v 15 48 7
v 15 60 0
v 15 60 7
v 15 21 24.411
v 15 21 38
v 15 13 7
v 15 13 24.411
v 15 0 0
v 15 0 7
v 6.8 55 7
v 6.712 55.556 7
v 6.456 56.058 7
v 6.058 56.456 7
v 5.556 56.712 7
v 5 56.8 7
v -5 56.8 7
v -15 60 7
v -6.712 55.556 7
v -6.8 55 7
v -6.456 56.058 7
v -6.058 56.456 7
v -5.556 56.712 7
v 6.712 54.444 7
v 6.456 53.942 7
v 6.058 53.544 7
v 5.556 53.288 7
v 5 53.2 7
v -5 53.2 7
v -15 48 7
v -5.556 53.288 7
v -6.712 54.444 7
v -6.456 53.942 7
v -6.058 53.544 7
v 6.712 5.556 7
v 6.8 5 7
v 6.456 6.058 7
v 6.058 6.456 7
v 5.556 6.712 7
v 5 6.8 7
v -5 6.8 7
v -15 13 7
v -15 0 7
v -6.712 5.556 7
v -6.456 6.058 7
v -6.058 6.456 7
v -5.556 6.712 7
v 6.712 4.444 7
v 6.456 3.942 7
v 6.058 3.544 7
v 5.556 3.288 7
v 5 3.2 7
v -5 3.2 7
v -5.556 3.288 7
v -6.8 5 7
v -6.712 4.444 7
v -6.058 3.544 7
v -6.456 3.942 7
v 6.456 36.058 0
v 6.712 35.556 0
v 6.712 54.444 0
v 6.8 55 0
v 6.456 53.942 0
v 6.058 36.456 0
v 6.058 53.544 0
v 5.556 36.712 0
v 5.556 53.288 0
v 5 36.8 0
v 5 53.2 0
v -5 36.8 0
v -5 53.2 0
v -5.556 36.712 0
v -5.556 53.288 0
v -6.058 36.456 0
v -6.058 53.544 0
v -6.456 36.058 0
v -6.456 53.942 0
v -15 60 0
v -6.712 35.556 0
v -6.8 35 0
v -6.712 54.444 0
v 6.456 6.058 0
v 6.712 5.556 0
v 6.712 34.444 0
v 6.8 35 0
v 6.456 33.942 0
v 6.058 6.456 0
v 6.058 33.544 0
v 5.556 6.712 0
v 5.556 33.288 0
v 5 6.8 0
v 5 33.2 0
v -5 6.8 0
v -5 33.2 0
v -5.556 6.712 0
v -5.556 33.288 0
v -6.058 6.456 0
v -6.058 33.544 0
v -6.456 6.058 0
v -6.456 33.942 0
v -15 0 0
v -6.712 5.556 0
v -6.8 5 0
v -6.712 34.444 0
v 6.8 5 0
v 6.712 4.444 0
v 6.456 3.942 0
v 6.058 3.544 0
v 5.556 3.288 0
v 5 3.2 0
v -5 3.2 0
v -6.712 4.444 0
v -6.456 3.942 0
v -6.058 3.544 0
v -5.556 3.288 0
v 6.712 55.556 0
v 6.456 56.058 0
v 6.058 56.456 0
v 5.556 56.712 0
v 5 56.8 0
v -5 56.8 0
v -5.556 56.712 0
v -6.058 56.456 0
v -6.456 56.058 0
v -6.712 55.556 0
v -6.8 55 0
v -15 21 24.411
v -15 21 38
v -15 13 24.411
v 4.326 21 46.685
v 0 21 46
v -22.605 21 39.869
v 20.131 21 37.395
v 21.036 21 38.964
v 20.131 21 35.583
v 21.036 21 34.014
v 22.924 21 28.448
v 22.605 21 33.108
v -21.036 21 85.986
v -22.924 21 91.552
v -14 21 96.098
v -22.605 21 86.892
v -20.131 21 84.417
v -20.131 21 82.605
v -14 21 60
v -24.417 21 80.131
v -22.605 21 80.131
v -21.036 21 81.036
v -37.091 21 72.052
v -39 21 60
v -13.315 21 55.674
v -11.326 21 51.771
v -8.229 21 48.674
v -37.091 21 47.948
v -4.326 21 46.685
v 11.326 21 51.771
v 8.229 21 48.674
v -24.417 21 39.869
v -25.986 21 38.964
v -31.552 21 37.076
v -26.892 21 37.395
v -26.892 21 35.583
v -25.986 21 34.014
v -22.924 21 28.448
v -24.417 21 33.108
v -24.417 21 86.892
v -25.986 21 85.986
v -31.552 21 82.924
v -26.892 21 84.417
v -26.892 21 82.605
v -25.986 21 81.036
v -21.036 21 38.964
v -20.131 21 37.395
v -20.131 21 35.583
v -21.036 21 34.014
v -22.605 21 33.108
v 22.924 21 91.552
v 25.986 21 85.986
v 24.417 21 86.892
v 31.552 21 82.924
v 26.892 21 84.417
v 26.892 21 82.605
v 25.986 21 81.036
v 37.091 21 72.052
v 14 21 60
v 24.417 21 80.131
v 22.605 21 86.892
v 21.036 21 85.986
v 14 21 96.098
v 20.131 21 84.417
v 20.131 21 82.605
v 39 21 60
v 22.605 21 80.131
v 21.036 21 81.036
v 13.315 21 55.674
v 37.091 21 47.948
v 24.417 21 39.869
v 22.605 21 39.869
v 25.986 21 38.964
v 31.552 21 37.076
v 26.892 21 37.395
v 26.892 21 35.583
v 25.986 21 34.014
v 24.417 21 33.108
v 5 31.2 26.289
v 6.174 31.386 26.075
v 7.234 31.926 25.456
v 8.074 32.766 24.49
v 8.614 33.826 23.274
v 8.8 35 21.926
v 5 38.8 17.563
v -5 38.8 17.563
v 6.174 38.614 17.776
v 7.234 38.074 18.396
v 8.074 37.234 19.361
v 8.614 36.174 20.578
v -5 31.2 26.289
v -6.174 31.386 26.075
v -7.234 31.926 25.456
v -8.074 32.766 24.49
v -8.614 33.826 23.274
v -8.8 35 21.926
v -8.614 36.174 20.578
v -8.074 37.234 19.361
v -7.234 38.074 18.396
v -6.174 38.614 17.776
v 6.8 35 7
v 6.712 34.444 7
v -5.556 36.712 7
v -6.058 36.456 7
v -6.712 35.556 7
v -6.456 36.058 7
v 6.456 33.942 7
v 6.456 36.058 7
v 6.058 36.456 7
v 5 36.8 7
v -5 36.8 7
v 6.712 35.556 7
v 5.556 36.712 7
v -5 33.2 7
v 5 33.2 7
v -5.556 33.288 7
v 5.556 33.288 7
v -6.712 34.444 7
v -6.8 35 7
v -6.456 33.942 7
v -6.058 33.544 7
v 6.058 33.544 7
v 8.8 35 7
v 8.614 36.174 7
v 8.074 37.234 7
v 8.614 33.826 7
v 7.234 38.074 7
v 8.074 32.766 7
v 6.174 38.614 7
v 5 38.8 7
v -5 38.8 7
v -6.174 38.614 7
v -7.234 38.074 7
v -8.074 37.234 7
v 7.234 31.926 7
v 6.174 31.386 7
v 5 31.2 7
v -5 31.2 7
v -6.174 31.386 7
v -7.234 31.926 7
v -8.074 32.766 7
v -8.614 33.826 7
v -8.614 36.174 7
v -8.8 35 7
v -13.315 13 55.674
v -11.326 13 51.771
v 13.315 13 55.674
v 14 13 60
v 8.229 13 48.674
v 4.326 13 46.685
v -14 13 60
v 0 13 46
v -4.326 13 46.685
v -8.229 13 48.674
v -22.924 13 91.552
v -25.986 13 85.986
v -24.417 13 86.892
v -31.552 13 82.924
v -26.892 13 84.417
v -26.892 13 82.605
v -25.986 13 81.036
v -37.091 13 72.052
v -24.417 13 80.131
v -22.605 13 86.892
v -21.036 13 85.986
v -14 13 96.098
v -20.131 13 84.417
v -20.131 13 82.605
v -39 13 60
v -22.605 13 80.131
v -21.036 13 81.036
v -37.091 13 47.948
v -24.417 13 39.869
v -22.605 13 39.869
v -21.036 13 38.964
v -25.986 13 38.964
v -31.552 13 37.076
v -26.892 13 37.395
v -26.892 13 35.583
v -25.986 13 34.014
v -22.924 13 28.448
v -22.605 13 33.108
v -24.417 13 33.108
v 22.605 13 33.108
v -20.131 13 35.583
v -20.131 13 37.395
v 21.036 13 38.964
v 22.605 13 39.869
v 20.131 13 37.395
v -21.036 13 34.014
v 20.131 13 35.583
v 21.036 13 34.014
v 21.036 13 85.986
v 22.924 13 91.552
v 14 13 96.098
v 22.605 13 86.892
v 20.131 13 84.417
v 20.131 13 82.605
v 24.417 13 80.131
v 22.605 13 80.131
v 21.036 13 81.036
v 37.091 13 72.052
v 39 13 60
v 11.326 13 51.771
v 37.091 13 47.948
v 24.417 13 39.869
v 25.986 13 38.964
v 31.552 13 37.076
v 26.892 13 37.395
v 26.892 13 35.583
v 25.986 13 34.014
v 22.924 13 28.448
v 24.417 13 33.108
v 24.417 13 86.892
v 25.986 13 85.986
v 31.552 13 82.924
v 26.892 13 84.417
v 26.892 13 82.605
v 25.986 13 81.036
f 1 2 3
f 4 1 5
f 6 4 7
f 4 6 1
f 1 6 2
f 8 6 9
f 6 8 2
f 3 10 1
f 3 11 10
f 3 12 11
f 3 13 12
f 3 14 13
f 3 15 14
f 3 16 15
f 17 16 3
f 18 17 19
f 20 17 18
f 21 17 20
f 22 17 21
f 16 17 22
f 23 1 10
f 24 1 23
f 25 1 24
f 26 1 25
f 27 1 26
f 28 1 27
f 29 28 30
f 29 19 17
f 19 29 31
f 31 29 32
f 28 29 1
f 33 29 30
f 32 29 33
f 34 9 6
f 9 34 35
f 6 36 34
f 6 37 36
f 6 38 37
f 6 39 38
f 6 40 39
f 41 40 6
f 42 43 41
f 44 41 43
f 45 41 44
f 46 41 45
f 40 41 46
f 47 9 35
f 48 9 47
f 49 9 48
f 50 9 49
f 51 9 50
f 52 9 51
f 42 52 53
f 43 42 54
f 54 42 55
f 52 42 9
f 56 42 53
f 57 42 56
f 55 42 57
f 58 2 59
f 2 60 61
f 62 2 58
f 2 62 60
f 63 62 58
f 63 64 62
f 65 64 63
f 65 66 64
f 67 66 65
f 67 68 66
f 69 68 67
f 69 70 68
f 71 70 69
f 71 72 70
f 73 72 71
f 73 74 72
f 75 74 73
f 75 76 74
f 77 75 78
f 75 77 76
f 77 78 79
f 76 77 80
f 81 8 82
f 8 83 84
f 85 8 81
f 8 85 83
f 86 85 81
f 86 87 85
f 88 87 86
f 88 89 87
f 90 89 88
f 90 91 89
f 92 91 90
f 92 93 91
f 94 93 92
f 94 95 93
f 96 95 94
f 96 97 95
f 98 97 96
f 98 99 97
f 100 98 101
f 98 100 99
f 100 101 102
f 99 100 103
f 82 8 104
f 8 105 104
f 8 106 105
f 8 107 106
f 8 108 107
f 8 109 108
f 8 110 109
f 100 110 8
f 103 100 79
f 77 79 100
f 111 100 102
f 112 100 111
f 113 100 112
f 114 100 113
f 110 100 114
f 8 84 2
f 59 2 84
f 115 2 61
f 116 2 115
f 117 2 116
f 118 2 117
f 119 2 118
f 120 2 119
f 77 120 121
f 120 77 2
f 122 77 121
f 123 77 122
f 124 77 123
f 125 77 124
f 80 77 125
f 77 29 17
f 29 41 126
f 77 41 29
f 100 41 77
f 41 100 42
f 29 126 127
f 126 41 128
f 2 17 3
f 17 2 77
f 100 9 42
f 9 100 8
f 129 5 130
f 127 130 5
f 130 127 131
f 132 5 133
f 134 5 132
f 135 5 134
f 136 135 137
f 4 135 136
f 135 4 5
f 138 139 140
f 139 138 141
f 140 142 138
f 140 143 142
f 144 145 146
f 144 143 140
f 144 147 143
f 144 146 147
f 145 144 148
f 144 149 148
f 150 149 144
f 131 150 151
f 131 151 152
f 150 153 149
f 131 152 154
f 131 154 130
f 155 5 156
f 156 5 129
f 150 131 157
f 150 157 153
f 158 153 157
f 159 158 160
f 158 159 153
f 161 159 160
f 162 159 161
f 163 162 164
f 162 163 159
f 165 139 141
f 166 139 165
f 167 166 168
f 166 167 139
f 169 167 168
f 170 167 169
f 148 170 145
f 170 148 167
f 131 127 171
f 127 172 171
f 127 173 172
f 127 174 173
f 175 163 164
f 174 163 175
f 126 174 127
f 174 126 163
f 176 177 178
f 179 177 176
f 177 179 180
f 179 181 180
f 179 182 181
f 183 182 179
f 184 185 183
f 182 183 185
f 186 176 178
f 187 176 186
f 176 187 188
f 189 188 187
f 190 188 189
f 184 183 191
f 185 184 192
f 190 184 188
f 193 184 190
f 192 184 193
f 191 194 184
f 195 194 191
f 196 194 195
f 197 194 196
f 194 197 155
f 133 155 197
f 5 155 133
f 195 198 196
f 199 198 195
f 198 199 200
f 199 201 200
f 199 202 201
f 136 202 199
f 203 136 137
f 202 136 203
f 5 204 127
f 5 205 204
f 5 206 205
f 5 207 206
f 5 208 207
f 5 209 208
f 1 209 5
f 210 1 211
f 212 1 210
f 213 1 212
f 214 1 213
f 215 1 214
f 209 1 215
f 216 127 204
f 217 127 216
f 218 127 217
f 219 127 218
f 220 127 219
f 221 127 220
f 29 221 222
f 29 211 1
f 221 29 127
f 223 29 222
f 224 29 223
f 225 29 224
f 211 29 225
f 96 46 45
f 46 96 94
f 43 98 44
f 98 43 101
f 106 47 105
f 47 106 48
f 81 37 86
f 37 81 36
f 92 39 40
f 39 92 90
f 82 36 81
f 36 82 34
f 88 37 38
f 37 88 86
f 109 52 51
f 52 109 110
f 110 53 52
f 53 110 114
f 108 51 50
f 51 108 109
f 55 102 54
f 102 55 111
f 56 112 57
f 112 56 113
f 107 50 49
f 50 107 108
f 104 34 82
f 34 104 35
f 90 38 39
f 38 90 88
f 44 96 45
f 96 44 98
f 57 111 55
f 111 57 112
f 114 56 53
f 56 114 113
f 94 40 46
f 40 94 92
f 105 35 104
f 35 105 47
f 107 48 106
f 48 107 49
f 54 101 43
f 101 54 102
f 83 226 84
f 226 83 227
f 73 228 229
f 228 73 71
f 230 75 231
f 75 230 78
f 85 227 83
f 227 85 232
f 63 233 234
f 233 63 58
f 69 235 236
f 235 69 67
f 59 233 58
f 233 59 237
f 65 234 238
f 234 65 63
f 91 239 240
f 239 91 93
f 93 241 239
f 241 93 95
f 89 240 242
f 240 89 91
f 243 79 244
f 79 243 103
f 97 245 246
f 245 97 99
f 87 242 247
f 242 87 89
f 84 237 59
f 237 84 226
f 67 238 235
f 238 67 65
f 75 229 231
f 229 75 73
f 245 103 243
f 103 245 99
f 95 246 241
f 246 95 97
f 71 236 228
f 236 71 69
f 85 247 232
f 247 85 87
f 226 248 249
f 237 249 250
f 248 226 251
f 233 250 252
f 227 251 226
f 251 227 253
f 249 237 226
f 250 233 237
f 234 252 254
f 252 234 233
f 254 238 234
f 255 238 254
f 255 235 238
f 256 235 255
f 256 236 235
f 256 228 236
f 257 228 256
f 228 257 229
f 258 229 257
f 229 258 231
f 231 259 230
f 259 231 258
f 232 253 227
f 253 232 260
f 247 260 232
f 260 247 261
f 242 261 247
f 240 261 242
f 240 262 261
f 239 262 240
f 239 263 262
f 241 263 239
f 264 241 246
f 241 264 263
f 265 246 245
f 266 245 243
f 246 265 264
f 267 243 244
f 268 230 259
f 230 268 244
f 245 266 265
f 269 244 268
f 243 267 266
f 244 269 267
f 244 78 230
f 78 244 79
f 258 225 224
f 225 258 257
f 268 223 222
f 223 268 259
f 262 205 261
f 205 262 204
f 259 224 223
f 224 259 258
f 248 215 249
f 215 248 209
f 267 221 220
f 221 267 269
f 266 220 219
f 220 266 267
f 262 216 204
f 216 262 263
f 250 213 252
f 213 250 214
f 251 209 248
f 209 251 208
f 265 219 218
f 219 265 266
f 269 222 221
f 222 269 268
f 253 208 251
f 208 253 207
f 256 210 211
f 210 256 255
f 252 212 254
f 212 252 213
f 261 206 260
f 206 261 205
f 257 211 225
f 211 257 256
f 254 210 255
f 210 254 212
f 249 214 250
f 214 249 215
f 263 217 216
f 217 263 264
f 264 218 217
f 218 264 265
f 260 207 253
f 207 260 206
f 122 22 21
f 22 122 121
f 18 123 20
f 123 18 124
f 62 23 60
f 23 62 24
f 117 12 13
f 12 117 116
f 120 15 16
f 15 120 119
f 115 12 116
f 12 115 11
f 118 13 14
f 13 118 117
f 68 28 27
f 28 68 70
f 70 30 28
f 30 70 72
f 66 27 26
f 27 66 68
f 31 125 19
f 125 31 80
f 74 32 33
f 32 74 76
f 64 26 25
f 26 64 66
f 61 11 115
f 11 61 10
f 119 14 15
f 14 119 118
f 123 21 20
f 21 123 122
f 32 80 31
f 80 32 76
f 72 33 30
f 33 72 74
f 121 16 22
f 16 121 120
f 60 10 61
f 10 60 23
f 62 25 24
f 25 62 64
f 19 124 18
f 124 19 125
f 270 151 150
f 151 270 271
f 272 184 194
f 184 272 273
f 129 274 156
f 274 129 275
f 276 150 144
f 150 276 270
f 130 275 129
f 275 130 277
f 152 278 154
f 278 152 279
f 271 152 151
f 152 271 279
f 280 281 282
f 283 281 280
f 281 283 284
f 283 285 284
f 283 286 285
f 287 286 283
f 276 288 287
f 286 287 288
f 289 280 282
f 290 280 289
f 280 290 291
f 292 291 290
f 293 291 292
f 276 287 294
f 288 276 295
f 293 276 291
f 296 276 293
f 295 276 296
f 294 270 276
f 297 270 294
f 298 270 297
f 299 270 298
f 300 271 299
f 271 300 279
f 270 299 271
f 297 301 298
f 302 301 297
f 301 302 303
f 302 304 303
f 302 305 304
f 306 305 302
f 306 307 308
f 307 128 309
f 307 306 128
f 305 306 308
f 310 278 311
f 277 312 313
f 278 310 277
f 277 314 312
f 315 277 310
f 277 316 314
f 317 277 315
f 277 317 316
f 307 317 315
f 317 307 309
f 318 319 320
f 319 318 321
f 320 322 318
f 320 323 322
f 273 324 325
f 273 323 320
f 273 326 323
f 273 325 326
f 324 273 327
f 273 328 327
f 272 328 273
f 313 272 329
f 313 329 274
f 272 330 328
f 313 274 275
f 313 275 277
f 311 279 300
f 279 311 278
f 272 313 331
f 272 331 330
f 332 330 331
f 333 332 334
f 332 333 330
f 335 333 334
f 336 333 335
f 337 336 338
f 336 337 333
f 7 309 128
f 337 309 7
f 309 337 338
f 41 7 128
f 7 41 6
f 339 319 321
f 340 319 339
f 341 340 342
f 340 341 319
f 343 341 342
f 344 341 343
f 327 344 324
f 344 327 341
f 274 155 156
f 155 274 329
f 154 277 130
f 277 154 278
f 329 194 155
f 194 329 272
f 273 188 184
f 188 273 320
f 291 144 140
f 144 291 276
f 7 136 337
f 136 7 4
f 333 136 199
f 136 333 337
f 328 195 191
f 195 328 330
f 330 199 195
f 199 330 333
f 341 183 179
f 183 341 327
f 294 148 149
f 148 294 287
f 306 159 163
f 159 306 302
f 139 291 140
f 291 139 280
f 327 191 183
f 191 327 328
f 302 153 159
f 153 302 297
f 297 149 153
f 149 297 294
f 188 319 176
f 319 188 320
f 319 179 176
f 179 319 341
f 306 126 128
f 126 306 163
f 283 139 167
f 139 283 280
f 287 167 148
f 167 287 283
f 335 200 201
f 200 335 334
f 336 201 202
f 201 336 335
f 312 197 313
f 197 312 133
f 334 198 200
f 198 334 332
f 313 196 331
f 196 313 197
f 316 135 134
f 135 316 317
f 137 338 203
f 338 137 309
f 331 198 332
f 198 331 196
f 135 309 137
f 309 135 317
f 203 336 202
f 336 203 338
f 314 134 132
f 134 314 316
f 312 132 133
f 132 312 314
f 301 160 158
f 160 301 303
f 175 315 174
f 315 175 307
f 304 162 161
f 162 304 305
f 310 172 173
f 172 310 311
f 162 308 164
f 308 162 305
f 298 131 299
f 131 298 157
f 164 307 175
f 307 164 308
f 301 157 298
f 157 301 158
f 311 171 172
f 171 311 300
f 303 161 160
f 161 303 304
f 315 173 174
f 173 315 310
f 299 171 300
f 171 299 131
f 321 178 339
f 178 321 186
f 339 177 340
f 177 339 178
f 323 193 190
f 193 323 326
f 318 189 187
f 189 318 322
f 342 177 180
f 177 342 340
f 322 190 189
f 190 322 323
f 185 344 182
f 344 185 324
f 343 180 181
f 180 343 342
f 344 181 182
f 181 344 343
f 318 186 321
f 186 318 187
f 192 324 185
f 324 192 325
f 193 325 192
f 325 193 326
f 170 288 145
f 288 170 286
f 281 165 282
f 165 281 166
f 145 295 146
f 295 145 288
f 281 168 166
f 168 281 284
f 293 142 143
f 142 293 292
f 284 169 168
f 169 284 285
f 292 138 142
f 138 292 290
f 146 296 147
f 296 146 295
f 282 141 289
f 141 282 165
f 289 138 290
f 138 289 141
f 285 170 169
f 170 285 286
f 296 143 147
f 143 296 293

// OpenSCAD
//Infant-breath-mechanical-simulator
//https://github.com/arisberd/Infant-breath-mechanical-simulator
//version 0.2
//GNU GPL v3

//syringe_attacher_with_flange.scad is used to mount any syringe. 

base_thickness= 7;
attacher_thickness=8; 
height = 60; //Distance between the top of the x-carriage.scad and the piston of the syringe
y_position = 13; //y offset of the attacher
base_x = 20+10; //dimension of the base
base_y = 56+4; //dimension of the base
strut_y = 27; //dimension of the strut
strut_z = height-22; //dimension of the strut

//uncomment the following line to produce only the flange
//!flange(diameter_max=50+18+2+8, diameter_mid=50+5, diameter_min = 28, thickness=attacher_thickness,hole_diameter=7,open=false);


module cylinder_double (r,h,x=0,y=0,z=0) {
   hull() {
    translate([x/2,y/2,z/2]) cylinder(r = r, h = h);
    translate([-x/2,-y/2,-z/2]) cylinder(r = r, h = h );
}
}


//Module flange
//diameter_min = the diameter in witch the handle fits
//diameter_mid = the diameter of the handle. The bolts are places between this and the diameter_max
//hole_diameter = diameter of each hole
//hole_degrees = the degrees of the circle at flange that the holes appear
//open = true, makes an open flange without lid
module flange(diameter_max,diameter_mid,diameter_min,thickness,hole_diameter, hole_degrees=45, open=false) {
    difference () {
    cylinder (d=diameter_max,h=thickness);
    //4holes
    rotate([0,0,hole_degrees]) translate([(diameter_max-diameter_mid)/4+diameter_mid/2,0,0]) cylinder(d=hole_diameter,h=thickness,$fn=12);
    rotate([0,0,-hole_degrees]) translate([(diameter_max-diameter_mid)/4+diameter_mid/2,0,0]) cylinder(d=hole_diameter,h=thickness,$fn=12);
    rotate([0,0,180-hole_degrees]) translate([(diameter_max-diameter_mid)/4+diameter_mid/2,0,0]) cylinder(d=hole_diameter,h=thickness,$fn=12);  
    rotate([0,0,180+hole_degrees]) translate([(diameter_max-diameter_mid)/4+diameter_mid/2,0,0]) cylinder(d=hole_diameter,h=thickness,$fn=12);        
    //the medium diameter cylinder
    %cylinder (d=diameter_mid,h=thickness);
    rotate([0,0,180]) if (open) { //if open=true, then the 2nd piece is made, with min hole
        cylinder (d=diameter_min,h=thickness);
        translate([diameter_max/2,0,0]) cylinder_double(r=diameter_min/2,h=thickness,x=diameter_max);
    }
    }
    %cylinder(h=thickness,d=1); //for centering purposes   
    
}



$fn=20;
difference () {
    union() {
//base on carriage
difference () {
    union() {
        //base rectangular 
        translate([-base_x/2,0,0]) cube ([base_x,base_y,base_thickness]);
        //base strut
            CubePoints = [
                [  base_x/2,  y_position+attacher_thickness,  0 ],  //0
                [ base_x/2,  y_position+attacher_thickness+strut_y,  0 ],  //1
                [ -base_x/2,  y_position+attacher_thickness+strut_y,  0 ],  //2
                [  -base_x/2,  y_position+attacher_thickness,  0 ],  //3
                [  base_x/2,  y_position+attacher_thickness, strut_z ],  //4
                [ base_x/2,  y_position+attacher_thickness+strut_y,  base_thickness ],  //5
                [ -base_x/2,  y_position+attacher_thickness+strut_y,  base_thickness ],  //6
                [  -base_x/2,  y_position+attacher_thickness, strut_z ]]; //7
  
            CubeFaces = [
                [0,1,2,3],  // bottom
                [4,5,1,0],  // front
                [7,6,5,4],  // top 
                [5,6,2,1],  // right
                [6,7,3,2],  // back
                [7,4,0,3]]; // left
  
            polyhedron( CubePoints, CubeFaces );
        
    }
        translate([0,3+2,0]) rotate (0,90,0)  cylinder_double (r=1.8,h=base_thickness,x=10);
        translate([0,3+30+2,0]) rotate (0,90,0)  cylinder_double (r=1.8,h=base_thickness,x=10);
        //2nd has another hole for the strut
        translate([0,3+30+2,base_thickness]) rotate (0,90,0)  cylinder_double (r=1.8+2,h=base_thickness*10,x=10);
        translate([0,3+50+2,0]) rotate (0,90,0)  cylinder_double (r=1.8,h=base_thickness,x=10);
};

//neck
union() {
    translate ([-base_x/2,y_position,0]) cube ([base_x,attacher_thickness,40]);
    translate([0,y_position+attacher_thickness,height]) rotate([90,90,0]) flange(diameter_max=50+18+2+8, diameter_mid=50+5, diameter_min = 28, thickness=attacher_thickness,hole_diameter=7,open=true);
}
}
translate([-base_x/2,0,-100]) cube([base_x,base_y,100]);
}
